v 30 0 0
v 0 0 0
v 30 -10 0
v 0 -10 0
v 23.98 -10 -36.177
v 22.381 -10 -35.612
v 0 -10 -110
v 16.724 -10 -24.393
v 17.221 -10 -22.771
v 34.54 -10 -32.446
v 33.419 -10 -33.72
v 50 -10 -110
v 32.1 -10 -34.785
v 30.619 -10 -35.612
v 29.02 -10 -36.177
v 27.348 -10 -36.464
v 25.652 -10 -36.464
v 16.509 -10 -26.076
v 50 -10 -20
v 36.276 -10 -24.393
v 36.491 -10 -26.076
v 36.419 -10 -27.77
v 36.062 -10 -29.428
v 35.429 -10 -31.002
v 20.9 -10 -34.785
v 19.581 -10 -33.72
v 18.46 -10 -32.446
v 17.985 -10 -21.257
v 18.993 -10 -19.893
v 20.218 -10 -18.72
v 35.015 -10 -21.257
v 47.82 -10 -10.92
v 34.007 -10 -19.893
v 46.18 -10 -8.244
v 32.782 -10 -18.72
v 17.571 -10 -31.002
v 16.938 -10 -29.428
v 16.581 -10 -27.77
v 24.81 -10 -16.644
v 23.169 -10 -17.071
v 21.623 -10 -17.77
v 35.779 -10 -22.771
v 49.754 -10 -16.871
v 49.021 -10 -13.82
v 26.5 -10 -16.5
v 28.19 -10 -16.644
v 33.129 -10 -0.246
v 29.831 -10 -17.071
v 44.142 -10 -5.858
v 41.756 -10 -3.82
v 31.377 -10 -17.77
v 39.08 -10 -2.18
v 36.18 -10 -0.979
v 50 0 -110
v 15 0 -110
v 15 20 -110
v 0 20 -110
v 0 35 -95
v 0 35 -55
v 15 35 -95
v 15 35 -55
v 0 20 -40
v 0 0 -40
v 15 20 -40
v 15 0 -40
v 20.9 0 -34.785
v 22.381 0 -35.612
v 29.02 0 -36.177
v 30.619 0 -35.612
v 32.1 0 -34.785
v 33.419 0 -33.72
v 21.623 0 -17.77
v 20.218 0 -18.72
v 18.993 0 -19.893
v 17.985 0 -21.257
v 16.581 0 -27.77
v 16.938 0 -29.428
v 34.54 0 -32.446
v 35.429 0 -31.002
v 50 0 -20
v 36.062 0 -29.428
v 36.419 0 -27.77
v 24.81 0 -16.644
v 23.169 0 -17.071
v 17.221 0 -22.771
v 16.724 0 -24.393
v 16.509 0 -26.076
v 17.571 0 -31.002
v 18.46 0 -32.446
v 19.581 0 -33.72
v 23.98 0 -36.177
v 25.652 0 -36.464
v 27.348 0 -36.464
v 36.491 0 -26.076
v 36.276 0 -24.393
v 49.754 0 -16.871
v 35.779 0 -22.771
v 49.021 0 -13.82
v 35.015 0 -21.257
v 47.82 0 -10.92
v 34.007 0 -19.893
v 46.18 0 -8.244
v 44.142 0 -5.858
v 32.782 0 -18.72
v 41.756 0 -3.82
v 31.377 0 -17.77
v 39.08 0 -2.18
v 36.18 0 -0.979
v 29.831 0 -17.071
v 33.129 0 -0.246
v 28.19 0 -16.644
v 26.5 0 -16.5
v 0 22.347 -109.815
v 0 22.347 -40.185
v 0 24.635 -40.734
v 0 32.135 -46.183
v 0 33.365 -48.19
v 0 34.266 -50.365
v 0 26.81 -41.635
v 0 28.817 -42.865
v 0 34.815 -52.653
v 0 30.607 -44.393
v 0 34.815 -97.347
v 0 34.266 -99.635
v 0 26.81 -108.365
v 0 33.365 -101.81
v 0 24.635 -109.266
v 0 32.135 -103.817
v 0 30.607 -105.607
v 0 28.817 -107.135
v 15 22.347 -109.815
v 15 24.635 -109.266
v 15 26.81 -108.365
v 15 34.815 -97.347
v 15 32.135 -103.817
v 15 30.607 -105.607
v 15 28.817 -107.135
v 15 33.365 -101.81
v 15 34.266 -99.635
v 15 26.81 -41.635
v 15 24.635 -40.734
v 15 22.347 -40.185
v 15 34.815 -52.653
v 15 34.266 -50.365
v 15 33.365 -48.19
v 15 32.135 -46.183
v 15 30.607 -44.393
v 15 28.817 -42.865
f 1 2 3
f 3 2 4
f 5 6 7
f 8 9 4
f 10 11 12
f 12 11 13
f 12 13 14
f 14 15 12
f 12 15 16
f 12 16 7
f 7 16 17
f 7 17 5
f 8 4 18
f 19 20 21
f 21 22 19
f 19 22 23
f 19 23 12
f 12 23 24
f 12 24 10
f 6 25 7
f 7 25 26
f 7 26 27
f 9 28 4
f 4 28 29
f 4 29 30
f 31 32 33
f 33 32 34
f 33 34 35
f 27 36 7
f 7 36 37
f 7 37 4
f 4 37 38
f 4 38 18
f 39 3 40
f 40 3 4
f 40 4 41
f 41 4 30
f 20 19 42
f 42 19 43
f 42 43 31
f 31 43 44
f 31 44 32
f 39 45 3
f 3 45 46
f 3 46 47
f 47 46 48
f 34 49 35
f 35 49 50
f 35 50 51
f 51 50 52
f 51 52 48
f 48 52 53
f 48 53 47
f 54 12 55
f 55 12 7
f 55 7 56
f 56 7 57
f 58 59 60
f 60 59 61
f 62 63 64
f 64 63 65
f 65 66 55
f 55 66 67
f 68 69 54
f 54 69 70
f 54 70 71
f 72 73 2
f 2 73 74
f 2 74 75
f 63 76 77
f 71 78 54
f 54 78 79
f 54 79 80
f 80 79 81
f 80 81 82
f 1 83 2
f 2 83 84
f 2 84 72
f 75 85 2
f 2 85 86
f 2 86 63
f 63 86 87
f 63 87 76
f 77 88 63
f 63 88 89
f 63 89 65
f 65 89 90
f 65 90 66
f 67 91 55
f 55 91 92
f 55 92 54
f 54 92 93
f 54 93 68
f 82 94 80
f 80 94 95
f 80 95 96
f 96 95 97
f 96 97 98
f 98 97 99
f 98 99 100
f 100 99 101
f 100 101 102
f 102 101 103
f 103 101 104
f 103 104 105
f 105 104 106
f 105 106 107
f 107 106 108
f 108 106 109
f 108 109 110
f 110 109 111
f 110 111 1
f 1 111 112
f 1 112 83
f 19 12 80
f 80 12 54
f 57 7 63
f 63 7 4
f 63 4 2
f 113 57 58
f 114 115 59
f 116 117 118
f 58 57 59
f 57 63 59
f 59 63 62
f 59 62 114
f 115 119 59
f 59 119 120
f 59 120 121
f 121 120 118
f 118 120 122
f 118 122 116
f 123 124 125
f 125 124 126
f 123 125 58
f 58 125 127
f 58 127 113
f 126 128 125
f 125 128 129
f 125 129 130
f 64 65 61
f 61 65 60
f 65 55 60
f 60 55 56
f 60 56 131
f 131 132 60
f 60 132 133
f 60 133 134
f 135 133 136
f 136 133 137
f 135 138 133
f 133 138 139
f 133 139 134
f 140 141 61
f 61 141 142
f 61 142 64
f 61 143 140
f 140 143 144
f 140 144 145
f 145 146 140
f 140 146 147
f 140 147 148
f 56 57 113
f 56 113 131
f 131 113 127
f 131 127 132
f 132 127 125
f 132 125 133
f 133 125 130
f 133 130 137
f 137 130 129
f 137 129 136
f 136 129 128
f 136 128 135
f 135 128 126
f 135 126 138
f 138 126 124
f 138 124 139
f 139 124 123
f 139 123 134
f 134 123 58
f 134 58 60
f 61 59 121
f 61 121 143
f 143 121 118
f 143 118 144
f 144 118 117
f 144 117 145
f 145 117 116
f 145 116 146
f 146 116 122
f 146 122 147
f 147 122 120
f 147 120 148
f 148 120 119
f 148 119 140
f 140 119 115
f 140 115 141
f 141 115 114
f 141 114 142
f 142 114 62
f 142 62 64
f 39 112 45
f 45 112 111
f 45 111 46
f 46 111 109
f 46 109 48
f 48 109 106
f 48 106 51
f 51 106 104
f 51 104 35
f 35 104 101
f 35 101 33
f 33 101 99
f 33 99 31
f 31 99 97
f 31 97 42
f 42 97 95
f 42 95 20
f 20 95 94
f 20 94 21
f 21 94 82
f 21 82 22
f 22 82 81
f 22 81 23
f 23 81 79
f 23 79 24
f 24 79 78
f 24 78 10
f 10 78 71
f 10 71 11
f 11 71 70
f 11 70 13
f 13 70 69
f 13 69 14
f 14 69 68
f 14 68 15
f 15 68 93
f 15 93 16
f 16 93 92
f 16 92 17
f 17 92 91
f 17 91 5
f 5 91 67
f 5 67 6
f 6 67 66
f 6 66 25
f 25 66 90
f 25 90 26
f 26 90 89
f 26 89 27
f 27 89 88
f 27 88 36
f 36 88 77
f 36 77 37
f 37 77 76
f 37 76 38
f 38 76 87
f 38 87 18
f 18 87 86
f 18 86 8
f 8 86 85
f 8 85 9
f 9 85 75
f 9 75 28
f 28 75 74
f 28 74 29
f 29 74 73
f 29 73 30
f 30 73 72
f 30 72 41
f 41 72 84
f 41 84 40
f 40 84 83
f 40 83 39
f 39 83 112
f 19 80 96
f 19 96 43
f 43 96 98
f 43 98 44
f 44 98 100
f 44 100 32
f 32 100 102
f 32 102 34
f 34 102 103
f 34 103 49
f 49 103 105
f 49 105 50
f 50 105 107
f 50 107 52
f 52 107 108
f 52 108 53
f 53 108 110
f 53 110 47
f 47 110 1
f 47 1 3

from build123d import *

# Parameters (mm, degrees)
EXTRUDE_1_DEPTH     = 50
SKETCH_2_W          = 35
SKETCH_2_H          = 35
CUT_EXTRUDE_1_DEPTH = 116
FILLET_1_R          = 15
SKETCH_3_R          = 10
CUT_EXTRUDE_2_DEPTH = 10
FILLET_2_R          = 20


with BuildPart() as part:
    # 스케치1 → 보스-돌출1 (new body)
    with BuildSketch(Plane(origin=(0, 0, 0), x_dir=(0, 0, -1), z_dir=(1, 0, 0))):
        Polygon((0, 0), (40, 0), (40, 35), (110, 35), (110, -10), (0, -10), align=None)
    extrude(amount=EXTRUDE_1_DEPTH)

    # 스케치2 → 컷-돌출1 (cut)
    with BuildSketch(Plane.XY.offset(-40)):
        with Locations((32.5, 17.5)):
            Rectangle(SKETCH_2_W, SKETCH_2_H)
    extrude(amount=-CUT_EXTRUDE_1_DEPTH, mode=Mode.SUBTRACT)

    # 필렛1
    fillet_1_edges = [part.edges().sort_by_distance(p)[0] for p in [
        (7.5, 35, -40),
        (7.5, 35, -110),
    ]]
    fillet(fillet_1_edges, radius=FILLET_1_R)

    # 스케치3 → 컷-돌출2 (cut)
    with BuildSketch(Plane(origin=(0, 0, 0), x_dir=(1, 0, 0), z_dir=(0, 1, 0))):
        with Locations((26.5, 26.5)):
            Circle(SKETCH_3_R)
    extrude(amount=-CUT_EXTRUDE_2_DEPTH, mode=Mode.SUBTRACT)

    # 필렛2
    fillet_2_edges = [part.edges().sort_by_distance(p)[0] for p in [
        (50, -5, 0),
    ]]
    fillet(fillet_2_edges, radius=FILLET_2_R)


solid = part.part
